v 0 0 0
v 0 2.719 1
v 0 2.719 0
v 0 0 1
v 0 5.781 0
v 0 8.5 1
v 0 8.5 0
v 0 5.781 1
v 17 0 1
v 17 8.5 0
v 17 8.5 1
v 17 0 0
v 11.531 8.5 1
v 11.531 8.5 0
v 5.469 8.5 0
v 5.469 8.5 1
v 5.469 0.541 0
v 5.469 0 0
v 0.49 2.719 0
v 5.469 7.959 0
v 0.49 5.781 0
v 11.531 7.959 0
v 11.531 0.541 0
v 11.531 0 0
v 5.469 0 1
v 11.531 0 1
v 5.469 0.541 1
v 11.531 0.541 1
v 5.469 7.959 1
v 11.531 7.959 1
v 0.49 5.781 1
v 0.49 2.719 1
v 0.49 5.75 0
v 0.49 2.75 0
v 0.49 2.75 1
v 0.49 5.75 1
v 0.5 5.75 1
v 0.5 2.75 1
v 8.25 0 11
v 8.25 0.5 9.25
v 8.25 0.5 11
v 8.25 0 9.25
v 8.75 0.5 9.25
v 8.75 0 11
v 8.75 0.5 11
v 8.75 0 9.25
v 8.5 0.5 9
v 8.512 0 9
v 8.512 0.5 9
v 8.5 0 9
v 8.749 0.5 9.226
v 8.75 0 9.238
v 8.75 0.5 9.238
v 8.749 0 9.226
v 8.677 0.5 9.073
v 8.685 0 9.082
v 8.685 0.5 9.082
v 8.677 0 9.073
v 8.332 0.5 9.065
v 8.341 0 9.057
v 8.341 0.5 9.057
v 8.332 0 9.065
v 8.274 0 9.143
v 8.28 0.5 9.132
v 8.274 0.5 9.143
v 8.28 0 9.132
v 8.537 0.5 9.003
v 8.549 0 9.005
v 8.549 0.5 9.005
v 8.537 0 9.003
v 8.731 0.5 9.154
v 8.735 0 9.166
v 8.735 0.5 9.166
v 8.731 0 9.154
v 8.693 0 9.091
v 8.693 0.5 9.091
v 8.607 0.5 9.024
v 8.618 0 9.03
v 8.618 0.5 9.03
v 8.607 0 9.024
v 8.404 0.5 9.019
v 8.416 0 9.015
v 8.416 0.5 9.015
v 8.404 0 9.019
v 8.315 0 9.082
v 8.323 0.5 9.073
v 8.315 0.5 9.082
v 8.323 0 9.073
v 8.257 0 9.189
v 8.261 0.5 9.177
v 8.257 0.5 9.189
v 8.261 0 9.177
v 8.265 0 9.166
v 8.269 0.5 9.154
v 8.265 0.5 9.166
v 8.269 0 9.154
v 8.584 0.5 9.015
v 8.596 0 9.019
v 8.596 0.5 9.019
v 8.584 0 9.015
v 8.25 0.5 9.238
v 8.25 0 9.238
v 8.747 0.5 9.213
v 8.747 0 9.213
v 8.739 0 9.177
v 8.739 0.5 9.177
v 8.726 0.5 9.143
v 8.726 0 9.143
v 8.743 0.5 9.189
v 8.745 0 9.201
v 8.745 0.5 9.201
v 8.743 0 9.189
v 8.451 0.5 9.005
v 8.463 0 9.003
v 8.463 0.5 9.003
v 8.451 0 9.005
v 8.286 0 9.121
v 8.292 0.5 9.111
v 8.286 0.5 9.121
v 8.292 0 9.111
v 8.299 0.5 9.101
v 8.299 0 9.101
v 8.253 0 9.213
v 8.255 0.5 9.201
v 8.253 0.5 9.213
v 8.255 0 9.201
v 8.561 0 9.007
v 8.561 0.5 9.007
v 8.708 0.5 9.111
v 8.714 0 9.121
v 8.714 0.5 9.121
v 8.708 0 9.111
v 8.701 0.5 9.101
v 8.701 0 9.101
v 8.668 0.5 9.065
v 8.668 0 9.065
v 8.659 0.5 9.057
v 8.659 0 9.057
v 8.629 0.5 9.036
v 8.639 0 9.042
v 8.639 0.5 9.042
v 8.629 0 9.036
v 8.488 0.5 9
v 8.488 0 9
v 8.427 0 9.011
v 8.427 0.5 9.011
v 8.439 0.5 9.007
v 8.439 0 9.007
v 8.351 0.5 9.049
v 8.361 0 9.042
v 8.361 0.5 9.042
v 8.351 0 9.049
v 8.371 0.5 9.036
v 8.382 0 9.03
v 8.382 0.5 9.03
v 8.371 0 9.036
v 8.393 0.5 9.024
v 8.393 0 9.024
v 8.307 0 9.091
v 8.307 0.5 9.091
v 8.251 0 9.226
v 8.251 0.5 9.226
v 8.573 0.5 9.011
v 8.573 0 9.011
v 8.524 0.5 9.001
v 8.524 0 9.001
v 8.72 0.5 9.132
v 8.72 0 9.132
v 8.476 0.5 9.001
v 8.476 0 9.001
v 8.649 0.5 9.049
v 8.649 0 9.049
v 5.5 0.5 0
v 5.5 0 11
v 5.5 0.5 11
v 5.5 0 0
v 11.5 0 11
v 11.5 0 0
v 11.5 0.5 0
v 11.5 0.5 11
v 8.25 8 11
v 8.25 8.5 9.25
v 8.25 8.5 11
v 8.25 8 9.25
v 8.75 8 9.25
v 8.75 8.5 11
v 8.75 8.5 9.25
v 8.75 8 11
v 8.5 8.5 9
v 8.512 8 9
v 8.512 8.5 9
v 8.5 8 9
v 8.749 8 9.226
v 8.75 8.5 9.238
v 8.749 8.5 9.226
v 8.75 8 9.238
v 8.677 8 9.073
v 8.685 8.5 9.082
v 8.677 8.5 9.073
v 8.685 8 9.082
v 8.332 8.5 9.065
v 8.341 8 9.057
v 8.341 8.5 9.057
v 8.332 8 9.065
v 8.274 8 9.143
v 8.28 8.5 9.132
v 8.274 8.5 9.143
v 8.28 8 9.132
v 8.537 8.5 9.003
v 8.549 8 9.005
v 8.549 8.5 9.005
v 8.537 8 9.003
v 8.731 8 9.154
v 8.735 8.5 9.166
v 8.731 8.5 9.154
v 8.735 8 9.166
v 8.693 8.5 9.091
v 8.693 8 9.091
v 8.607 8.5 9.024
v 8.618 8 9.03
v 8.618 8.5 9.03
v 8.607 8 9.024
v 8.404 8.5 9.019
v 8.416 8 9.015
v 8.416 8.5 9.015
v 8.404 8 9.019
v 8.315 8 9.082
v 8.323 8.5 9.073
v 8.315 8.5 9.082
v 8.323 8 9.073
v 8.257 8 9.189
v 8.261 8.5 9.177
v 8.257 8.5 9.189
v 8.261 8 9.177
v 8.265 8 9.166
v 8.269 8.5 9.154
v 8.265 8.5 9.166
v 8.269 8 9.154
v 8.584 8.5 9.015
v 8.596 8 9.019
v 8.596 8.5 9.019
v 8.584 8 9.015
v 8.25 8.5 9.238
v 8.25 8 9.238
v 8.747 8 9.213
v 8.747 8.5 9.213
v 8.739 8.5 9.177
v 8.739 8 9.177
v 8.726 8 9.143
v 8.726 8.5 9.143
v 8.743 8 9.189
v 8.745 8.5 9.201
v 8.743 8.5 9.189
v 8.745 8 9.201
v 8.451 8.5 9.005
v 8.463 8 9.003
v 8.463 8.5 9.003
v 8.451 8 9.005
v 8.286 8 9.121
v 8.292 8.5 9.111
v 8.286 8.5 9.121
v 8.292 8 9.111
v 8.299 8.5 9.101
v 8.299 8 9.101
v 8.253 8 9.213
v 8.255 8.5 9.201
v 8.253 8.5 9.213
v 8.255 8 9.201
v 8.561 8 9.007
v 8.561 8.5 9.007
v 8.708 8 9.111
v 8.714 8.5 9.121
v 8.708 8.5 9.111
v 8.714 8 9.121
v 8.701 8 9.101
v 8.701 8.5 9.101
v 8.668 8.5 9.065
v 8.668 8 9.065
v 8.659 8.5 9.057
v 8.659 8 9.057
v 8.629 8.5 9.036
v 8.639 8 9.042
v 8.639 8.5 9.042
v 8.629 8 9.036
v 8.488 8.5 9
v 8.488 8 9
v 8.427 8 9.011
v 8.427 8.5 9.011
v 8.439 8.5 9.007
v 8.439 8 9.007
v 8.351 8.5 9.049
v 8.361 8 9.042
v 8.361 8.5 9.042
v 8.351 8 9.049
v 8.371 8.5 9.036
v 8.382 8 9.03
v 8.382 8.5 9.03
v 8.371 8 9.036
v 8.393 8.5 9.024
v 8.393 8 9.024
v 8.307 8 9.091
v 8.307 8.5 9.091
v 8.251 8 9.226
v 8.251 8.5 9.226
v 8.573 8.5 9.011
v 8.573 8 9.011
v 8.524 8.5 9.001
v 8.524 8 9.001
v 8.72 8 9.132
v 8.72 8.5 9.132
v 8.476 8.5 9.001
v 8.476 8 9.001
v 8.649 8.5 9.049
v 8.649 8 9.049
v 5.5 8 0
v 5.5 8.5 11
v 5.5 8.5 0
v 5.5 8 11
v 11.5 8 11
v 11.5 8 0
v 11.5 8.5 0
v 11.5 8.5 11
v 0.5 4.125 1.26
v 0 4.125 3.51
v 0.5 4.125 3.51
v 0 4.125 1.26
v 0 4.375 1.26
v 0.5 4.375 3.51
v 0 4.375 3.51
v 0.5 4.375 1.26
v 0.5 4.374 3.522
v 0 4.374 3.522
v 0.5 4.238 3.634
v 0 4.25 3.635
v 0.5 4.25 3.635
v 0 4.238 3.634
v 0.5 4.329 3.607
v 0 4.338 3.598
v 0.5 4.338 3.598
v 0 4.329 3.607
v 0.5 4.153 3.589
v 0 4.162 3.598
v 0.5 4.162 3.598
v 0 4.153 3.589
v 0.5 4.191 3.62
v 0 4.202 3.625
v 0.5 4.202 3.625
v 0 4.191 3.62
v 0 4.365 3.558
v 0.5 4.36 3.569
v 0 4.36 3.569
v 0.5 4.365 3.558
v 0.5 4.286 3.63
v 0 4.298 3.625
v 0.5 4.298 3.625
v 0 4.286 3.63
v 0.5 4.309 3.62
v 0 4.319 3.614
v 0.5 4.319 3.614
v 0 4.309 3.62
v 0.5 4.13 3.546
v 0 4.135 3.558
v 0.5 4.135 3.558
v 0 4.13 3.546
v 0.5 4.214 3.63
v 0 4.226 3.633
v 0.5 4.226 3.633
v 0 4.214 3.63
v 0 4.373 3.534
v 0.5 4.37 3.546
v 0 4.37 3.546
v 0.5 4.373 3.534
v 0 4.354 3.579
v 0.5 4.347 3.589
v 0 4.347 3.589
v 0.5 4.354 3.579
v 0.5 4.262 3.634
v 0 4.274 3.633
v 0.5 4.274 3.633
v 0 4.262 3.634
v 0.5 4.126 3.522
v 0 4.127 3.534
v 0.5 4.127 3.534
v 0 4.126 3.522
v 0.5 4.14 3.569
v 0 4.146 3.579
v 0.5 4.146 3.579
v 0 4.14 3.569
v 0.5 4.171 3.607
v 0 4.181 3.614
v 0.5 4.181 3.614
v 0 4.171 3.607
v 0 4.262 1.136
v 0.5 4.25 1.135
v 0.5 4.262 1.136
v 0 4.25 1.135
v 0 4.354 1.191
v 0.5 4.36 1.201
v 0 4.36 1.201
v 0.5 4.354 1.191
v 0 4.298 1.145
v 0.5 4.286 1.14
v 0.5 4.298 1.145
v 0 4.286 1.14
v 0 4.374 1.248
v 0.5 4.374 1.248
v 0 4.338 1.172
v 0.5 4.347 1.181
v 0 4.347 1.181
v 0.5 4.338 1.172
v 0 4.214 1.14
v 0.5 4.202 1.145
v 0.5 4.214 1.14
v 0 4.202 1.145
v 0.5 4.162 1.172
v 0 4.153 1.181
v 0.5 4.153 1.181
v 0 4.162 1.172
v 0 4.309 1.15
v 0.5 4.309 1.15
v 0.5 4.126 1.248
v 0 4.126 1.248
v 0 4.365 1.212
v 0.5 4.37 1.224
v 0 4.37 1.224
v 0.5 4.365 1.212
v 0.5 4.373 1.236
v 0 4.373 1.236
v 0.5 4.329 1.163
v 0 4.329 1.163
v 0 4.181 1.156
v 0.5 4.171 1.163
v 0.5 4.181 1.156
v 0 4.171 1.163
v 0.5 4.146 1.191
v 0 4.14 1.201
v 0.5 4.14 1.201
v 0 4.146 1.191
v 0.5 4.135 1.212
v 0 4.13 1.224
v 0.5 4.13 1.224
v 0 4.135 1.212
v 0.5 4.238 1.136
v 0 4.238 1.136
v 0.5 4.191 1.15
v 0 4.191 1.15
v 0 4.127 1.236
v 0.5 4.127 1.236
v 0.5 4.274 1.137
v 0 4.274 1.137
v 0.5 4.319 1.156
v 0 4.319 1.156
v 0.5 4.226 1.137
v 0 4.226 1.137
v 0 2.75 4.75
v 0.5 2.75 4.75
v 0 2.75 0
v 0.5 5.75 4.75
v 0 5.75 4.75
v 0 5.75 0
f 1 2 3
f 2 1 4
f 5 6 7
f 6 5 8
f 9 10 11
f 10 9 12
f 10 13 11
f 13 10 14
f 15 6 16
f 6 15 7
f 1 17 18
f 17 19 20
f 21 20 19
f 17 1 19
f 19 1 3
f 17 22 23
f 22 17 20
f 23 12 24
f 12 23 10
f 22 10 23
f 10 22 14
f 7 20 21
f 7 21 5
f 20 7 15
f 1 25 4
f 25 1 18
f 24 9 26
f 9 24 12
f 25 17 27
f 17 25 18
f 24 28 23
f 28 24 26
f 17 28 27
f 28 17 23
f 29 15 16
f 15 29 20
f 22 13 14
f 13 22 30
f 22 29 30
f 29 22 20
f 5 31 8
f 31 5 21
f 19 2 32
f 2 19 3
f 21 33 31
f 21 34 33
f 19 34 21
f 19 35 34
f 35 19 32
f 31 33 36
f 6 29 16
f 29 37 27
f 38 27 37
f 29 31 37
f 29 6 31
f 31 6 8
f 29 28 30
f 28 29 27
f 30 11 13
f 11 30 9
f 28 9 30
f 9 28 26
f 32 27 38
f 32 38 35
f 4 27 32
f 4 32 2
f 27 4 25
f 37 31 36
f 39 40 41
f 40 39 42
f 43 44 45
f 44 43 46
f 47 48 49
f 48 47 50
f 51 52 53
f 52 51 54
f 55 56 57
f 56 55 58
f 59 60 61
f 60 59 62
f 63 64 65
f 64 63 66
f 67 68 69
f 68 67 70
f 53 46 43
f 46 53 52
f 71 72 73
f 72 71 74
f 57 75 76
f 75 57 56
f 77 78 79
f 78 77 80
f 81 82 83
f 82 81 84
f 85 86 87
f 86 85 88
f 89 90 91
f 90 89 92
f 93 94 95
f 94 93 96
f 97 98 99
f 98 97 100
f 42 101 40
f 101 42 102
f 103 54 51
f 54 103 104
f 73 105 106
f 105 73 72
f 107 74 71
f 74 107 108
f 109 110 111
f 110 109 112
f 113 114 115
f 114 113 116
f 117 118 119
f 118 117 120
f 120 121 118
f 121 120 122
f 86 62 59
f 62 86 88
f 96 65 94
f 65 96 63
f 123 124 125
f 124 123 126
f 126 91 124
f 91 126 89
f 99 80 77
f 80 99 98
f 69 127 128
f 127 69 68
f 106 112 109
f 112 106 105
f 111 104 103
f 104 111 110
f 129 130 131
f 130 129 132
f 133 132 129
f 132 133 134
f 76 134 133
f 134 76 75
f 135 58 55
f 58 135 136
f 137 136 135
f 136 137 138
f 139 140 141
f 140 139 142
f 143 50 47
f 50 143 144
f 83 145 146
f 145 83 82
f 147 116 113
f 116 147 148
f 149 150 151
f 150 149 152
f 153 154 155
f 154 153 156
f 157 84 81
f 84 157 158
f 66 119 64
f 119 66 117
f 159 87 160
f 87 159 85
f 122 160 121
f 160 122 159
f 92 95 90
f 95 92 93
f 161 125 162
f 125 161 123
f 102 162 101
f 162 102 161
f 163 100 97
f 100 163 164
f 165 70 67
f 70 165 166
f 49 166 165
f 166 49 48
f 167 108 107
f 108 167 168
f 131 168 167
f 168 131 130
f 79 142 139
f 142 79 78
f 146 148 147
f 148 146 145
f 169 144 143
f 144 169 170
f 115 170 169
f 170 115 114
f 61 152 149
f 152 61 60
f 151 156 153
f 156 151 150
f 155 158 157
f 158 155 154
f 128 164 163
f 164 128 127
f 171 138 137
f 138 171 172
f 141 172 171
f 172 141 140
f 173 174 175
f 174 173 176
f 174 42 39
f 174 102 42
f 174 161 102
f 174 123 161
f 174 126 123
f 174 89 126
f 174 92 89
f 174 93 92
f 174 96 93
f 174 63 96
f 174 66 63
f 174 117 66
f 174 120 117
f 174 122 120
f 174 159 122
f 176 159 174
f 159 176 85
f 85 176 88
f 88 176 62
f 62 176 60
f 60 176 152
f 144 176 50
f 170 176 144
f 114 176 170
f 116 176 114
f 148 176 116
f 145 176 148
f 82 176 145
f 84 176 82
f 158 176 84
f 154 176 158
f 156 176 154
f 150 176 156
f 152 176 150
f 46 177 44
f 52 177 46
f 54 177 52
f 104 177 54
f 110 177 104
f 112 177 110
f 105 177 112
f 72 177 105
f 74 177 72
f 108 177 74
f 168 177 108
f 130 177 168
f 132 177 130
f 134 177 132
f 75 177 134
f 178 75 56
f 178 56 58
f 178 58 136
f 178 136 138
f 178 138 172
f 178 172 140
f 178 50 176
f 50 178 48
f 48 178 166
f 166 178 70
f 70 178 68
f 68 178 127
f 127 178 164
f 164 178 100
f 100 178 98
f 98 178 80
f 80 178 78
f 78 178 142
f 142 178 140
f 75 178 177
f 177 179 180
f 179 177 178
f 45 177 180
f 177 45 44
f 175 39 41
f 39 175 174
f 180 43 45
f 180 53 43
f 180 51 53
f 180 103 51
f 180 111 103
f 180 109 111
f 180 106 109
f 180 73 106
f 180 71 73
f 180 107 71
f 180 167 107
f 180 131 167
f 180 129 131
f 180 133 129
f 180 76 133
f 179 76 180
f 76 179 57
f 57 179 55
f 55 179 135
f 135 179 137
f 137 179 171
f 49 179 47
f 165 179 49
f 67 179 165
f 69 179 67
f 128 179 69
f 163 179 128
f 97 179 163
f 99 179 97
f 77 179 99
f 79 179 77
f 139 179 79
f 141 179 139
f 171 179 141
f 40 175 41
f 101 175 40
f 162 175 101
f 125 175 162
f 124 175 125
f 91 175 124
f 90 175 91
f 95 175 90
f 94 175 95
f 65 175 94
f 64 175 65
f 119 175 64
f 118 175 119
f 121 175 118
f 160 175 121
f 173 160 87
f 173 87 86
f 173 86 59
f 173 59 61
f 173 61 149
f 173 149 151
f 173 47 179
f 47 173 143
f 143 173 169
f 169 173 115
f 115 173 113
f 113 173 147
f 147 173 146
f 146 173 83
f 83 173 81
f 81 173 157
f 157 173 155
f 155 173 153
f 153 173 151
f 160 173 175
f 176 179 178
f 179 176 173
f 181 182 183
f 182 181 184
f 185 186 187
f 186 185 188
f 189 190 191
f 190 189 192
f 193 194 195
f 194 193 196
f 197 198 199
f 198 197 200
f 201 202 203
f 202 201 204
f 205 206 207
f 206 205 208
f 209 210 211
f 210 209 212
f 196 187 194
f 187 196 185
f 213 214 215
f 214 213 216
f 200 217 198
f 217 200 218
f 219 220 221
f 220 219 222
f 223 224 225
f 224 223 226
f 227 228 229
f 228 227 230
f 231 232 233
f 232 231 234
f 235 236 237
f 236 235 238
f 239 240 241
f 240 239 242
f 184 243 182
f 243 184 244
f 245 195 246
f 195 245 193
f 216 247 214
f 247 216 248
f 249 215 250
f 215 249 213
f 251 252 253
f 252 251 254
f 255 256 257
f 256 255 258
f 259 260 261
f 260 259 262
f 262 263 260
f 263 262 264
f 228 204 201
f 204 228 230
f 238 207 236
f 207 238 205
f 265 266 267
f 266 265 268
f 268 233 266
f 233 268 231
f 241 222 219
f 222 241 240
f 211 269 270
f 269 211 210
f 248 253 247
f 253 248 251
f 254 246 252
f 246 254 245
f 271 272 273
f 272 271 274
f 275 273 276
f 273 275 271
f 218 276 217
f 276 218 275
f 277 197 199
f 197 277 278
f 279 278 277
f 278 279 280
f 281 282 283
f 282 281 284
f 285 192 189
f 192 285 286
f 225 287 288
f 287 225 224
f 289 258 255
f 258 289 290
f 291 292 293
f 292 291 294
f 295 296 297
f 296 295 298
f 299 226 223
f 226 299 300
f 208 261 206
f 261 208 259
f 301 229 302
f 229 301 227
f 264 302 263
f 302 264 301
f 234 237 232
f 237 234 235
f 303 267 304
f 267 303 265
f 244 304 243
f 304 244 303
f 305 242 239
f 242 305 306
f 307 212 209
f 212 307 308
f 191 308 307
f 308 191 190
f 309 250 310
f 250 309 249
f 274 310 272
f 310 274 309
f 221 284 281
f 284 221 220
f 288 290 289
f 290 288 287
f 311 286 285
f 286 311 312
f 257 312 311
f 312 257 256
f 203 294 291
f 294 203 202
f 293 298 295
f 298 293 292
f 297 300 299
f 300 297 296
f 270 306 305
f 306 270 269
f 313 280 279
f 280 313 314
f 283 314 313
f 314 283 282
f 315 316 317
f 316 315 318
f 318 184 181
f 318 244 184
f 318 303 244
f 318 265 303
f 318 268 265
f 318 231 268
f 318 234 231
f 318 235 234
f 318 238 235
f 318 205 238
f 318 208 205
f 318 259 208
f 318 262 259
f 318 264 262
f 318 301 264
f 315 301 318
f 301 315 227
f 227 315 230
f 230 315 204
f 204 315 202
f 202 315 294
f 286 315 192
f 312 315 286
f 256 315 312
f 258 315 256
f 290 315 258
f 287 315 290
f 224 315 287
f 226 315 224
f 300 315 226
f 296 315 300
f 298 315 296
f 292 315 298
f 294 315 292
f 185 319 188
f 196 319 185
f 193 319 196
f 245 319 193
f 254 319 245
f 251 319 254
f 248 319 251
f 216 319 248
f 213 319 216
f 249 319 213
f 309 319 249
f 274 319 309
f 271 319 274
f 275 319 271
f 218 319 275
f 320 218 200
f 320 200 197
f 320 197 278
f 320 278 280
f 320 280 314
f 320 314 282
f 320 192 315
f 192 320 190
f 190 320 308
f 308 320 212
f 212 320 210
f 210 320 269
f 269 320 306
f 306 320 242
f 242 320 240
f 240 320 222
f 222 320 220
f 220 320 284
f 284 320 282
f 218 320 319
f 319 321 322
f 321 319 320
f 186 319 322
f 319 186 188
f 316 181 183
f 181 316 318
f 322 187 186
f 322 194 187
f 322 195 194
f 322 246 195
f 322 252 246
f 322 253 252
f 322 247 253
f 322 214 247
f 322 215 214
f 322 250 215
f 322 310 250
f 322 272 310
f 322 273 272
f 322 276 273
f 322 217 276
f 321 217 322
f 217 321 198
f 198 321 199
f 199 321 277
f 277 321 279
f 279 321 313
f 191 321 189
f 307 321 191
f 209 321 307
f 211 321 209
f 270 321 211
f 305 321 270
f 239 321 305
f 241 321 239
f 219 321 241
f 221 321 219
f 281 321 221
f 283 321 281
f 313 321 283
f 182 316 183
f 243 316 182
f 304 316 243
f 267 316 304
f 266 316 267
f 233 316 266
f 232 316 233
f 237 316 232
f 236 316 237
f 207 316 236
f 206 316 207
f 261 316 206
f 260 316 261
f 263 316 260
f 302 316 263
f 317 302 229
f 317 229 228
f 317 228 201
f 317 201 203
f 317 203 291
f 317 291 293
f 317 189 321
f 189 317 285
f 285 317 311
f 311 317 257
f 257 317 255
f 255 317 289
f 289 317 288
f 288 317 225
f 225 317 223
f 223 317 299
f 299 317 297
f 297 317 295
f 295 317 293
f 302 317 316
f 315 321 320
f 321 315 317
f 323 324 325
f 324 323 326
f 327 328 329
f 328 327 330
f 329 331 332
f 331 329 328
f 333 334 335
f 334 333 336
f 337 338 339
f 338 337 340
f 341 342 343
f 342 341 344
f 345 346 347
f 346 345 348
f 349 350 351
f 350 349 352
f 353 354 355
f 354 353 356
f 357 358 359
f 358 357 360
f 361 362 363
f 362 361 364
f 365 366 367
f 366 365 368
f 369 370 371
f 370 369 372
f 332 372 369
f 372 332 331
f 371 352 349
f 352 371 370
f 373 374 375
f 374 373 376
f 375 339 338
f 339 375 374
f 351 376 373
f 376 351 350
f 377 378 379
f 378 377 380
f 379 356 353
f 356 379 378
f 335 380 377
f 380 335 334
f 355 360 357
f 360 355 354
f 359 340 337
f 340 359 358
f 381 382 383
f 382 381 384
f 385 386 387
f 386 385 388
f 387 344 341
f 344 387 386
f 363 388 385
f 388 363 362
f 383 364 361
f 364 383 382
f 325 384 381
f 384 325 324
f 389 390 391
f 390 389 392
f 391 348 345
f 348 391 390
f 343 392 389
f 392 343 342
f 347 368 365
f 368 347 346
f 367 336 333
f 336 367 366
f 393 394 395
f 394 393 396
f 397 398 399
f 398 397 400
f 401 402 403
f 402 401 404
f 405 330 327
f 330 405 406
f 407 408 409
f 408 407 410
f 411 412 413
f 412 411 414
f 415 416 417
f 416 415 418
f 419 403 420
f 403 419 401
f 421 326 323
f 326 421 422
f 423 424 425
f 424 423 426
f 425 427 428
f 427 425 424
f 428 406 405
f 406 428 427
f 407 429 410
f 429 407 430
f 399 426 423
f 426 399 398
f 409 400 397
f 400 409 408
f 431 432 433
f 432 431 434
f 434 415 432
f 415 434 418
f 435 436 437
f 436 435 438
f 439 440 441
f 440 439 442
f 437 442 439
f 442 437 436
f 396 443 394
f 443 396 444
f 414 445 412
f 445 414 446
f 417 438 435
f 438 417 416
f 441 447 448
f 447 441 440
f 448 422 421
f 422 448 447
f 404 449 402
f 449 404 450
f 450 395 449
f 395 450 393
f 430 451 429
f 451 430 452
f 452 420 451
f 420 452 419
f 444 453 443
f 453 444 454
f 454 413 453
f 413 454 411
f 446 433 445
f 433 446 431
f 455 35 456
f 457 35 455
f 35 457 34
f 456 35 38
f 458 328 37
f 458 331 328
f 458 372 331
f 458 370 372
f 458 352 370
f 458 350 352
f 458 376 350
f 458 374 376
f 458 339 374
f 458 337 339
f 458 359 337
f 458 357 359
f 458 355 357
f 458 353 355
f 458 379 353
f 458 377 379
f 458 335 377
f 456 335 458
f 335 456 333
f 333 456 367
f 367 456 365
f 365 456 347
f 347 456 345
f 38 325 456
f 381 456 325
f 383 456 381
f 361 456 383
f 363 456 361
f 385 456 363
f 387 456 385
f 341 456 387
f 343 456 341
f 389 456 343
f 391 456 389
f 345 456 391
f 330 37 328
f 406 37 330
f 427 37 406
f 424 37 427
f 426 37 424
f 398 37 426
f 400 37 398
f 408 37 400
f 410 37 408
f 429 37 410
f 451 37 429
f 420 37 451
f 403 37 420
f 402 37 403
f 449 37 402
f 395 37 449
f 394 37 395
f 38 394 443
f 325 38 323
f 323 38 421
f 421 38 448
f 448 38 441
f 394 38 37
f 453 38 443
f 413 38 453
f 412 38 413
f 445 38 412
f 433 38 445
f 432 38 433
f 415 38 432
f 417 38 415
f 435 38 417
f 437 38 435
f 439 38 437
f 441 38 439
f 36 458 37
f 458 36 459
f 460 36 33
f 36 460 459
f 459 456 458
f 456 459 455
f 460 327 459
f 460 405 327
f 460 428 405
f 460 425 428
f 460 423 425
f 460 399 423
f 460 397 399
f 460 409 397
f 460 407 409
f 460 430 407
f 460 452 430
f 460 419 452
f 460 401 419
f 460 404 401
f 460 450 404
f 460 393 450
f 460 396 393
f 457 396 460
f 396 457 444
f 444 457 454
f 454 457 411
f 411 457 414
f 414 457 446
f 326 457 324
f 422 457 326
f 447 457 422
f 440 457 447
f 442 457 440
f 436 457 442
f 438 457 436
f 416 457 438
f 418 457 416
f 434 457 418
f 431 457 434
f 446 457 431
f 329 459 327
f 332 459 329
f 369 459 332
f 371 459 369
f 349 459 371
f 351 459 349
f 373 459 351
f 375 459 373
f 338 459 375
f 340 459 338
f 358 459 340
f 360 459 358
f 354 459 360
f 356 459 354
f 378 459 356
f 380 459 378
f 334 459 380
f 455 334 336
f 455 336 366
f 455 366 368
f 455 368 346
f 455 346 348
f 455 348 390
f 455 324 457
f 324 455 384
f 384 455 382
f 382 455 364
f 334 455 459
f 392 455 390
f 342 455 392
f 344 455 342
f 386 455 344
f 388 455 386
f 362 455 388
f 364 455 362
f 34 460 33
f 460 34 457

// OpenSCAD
// file: constants.scad
// all units are in inches
SPOOL_DIA = 14;
SPOOL_DEPTH = 5.5;
SPOOL_CLEARANCE = 1.5;
SPOOL_INNER_DIA = 2;

ROD_DIA = 3 / 8;

d = .01;
d2 = d * 2;
$fn = 256;

function inch_to_mm(inches) = inches * 25.4;
// main file
include <constants.scad>

// all units are in inches

DRAW_PARTS = false;
MATERIAL_THICKNESS = .5;

PART_SPACING = 1;

FIT_CLEARANCE = 1 / 32;

BASE_LENGTH = SPOOL_DIA + 2 * SPOOL_CLEARANCE;
BASE_DEPTH = SPOOL_DEPTH + 2 * SPOOL_CLEARANCE;
BASE_HEIGHT = 2 * MATERIAL_THICKNESS;

ROD_CLEARANCE = 1/16;
ROD_INSET = 1.5;

SUPPORT_WIDTH = 6;
SUPPORT_HEIGHT = BASE_HEIGHT + SPOOL_DIA / 2 + SPOOL_CLEARANCE + ROD_INSET;

FILAMENT_DIA = 1 / 4;
FILAMENT_INSET = 1.25;
FILAMENT_HEIGHT = SPOOL_CLEARANCE + 1;

GUIDE_WIDTH = 3;
GUIDE_HEIGHT = BASE_HEIGHT + FILAMENT_HEIGHT + FILAMENT_INSET;

module base() {
  difference() {
    cube([BASE_LENGTH, BASE_DEPTH, MATERIAL_THICKNESS]);

    //cutout for supports
    translate([(BASE_LENGTH / 2 - SUPPORT_WIDTH / 2) - FIT_CLEARANCE, -d, -d])
      cube([SUPPORT_WIDTH + 2 * FIT_CLEARANCE, MATERIAL_THICKNESS + FIT_CLEARANCE + d2, MATERIAL_THICKNESS + d2]);

    translate([(BASE_LENGTH / 2 - SUPPORT_WIDTH / 2) - FIT_CLEARANCE, BASE_DEPTH - MATERIAL_THICKNESS - FIT_CLEARANCE - d, -d])
      cube([SUPPORT_WIDTH + 2 * FIT_CLEARANCE, MATERIAL_THICKNESS + FIT_CLEARANCE + d2, MATERIAL_THICKNESS + d2]);

    //cutout for guide
    translate([MATERIAL_THICKNESS - d, BASE_DEPTH / 2 - GUIDE_WIDTH / 2 - FIT_CLEARANCE, -d])
    rotate([0, 0, 90])
      cube([GUIDE_WIDTH + 2 * FIT_CLEARANCE, MATERIAL_THICKNESS + FIT_CLEARANCE + d2, MATERIAL_THICKNESS + d2]);
  }
}

module guide() {
  slot_h = GUIDE_HEIGHT - 2 * FILAMENT_INSET;
  difference() {
    cube([GUIDE_WIDTH, GUIDE_HEIGHT, MATERIAL_THICKNESS]);
    translate([GUIDE_WIDTH / 2 - FILAMENT_DIA / 2, FILAMENT_INSET + d, -d])
    union() {
      cube([FILAMENT_DIA, slot_h, MATERIAL_THICKNESS + d2]);
      translate([FILAMENT_DIA / 2, slot_h, 0])
        cylinder(d = FILAMENT_DIA, h = MATERIAL_THICKNESS + d2);
      translate([FILAMENT_DIA / 2, 0, 0])
        cylinder(d = FILAMENT_DIA, h = MATERIAL_THICKNESS + d2);
    }
  }
}

module support() {
  slot_w = ROD_DIA + 2 * ROD_CLEARANCE;
  difference() {
    cube([SUPPORT_WIDTH, SUPPORT_HEIGHT, MATERIAL_THICKNESS]);
    //slot for rod
    translate([SUPPORT_WIDTH / 2 - ROD_DIA / 2 - ROD_CLEARANCE, SUPPORT_HEIGHT - ROD_CLEARANCE - ROD_INSET - ROD_DIA / 2, -d])
    union() {
      cube([slot_w, ROD_INSET + ROD_DIA, MATERIAL_THICKNESS + d2]);
      translate([slot_w / 2, 0, 0])
      cylinder(d = ROD_DIA + 2 * ROD_CLEARANCE, h = MATERIAL_THICKNESS + d2, $fn=128);
    }
  }
}

if (DRAW_PARTS) {
  projection(cut=true)
  union() {
    support();
    translate([SUPPORT_WIDTH + PART_SPACING, 0, 0])
      support();

    translate([0, SUPPORT_HEIGHT + PART_SPACING, 0])
      base();

    translate([0, SUPPORT_HEIGHT + PART_SPACING + BASE_DEPTH + PART_SPACING, 0])
      base();

    translate([2 * (SUPPORT_WIDTH + PART_SPACING), 0, 0])
      guide();

    translate([2 * (SUPPORT_WIDTH + PART_SPACING), GUIDE_HEIGHT + PART_SPACING, 0])
      guide();
  }
} else {
  base();

  translate([0, 0, MATERIAL_THICKNESS])
    base();

  translate([(BASE_LENGTH / 2 - SUPPORT_WIDTH / 2), MATERIAL_THICKNESS, 0])
  rotate([90, 0, 0])
    support();

  translate([BASE_LENGTH / 2 - SUPPORT_WIDTH / 2, BASE_DEPTH , 0])
  rotate([90, 0, 0])
    support();

  translate([0, BASE_DEPTH / 2 - GUIDE_WIDTH / 2, 0])
  rotate([90, 0, 90])
  guide();
}
